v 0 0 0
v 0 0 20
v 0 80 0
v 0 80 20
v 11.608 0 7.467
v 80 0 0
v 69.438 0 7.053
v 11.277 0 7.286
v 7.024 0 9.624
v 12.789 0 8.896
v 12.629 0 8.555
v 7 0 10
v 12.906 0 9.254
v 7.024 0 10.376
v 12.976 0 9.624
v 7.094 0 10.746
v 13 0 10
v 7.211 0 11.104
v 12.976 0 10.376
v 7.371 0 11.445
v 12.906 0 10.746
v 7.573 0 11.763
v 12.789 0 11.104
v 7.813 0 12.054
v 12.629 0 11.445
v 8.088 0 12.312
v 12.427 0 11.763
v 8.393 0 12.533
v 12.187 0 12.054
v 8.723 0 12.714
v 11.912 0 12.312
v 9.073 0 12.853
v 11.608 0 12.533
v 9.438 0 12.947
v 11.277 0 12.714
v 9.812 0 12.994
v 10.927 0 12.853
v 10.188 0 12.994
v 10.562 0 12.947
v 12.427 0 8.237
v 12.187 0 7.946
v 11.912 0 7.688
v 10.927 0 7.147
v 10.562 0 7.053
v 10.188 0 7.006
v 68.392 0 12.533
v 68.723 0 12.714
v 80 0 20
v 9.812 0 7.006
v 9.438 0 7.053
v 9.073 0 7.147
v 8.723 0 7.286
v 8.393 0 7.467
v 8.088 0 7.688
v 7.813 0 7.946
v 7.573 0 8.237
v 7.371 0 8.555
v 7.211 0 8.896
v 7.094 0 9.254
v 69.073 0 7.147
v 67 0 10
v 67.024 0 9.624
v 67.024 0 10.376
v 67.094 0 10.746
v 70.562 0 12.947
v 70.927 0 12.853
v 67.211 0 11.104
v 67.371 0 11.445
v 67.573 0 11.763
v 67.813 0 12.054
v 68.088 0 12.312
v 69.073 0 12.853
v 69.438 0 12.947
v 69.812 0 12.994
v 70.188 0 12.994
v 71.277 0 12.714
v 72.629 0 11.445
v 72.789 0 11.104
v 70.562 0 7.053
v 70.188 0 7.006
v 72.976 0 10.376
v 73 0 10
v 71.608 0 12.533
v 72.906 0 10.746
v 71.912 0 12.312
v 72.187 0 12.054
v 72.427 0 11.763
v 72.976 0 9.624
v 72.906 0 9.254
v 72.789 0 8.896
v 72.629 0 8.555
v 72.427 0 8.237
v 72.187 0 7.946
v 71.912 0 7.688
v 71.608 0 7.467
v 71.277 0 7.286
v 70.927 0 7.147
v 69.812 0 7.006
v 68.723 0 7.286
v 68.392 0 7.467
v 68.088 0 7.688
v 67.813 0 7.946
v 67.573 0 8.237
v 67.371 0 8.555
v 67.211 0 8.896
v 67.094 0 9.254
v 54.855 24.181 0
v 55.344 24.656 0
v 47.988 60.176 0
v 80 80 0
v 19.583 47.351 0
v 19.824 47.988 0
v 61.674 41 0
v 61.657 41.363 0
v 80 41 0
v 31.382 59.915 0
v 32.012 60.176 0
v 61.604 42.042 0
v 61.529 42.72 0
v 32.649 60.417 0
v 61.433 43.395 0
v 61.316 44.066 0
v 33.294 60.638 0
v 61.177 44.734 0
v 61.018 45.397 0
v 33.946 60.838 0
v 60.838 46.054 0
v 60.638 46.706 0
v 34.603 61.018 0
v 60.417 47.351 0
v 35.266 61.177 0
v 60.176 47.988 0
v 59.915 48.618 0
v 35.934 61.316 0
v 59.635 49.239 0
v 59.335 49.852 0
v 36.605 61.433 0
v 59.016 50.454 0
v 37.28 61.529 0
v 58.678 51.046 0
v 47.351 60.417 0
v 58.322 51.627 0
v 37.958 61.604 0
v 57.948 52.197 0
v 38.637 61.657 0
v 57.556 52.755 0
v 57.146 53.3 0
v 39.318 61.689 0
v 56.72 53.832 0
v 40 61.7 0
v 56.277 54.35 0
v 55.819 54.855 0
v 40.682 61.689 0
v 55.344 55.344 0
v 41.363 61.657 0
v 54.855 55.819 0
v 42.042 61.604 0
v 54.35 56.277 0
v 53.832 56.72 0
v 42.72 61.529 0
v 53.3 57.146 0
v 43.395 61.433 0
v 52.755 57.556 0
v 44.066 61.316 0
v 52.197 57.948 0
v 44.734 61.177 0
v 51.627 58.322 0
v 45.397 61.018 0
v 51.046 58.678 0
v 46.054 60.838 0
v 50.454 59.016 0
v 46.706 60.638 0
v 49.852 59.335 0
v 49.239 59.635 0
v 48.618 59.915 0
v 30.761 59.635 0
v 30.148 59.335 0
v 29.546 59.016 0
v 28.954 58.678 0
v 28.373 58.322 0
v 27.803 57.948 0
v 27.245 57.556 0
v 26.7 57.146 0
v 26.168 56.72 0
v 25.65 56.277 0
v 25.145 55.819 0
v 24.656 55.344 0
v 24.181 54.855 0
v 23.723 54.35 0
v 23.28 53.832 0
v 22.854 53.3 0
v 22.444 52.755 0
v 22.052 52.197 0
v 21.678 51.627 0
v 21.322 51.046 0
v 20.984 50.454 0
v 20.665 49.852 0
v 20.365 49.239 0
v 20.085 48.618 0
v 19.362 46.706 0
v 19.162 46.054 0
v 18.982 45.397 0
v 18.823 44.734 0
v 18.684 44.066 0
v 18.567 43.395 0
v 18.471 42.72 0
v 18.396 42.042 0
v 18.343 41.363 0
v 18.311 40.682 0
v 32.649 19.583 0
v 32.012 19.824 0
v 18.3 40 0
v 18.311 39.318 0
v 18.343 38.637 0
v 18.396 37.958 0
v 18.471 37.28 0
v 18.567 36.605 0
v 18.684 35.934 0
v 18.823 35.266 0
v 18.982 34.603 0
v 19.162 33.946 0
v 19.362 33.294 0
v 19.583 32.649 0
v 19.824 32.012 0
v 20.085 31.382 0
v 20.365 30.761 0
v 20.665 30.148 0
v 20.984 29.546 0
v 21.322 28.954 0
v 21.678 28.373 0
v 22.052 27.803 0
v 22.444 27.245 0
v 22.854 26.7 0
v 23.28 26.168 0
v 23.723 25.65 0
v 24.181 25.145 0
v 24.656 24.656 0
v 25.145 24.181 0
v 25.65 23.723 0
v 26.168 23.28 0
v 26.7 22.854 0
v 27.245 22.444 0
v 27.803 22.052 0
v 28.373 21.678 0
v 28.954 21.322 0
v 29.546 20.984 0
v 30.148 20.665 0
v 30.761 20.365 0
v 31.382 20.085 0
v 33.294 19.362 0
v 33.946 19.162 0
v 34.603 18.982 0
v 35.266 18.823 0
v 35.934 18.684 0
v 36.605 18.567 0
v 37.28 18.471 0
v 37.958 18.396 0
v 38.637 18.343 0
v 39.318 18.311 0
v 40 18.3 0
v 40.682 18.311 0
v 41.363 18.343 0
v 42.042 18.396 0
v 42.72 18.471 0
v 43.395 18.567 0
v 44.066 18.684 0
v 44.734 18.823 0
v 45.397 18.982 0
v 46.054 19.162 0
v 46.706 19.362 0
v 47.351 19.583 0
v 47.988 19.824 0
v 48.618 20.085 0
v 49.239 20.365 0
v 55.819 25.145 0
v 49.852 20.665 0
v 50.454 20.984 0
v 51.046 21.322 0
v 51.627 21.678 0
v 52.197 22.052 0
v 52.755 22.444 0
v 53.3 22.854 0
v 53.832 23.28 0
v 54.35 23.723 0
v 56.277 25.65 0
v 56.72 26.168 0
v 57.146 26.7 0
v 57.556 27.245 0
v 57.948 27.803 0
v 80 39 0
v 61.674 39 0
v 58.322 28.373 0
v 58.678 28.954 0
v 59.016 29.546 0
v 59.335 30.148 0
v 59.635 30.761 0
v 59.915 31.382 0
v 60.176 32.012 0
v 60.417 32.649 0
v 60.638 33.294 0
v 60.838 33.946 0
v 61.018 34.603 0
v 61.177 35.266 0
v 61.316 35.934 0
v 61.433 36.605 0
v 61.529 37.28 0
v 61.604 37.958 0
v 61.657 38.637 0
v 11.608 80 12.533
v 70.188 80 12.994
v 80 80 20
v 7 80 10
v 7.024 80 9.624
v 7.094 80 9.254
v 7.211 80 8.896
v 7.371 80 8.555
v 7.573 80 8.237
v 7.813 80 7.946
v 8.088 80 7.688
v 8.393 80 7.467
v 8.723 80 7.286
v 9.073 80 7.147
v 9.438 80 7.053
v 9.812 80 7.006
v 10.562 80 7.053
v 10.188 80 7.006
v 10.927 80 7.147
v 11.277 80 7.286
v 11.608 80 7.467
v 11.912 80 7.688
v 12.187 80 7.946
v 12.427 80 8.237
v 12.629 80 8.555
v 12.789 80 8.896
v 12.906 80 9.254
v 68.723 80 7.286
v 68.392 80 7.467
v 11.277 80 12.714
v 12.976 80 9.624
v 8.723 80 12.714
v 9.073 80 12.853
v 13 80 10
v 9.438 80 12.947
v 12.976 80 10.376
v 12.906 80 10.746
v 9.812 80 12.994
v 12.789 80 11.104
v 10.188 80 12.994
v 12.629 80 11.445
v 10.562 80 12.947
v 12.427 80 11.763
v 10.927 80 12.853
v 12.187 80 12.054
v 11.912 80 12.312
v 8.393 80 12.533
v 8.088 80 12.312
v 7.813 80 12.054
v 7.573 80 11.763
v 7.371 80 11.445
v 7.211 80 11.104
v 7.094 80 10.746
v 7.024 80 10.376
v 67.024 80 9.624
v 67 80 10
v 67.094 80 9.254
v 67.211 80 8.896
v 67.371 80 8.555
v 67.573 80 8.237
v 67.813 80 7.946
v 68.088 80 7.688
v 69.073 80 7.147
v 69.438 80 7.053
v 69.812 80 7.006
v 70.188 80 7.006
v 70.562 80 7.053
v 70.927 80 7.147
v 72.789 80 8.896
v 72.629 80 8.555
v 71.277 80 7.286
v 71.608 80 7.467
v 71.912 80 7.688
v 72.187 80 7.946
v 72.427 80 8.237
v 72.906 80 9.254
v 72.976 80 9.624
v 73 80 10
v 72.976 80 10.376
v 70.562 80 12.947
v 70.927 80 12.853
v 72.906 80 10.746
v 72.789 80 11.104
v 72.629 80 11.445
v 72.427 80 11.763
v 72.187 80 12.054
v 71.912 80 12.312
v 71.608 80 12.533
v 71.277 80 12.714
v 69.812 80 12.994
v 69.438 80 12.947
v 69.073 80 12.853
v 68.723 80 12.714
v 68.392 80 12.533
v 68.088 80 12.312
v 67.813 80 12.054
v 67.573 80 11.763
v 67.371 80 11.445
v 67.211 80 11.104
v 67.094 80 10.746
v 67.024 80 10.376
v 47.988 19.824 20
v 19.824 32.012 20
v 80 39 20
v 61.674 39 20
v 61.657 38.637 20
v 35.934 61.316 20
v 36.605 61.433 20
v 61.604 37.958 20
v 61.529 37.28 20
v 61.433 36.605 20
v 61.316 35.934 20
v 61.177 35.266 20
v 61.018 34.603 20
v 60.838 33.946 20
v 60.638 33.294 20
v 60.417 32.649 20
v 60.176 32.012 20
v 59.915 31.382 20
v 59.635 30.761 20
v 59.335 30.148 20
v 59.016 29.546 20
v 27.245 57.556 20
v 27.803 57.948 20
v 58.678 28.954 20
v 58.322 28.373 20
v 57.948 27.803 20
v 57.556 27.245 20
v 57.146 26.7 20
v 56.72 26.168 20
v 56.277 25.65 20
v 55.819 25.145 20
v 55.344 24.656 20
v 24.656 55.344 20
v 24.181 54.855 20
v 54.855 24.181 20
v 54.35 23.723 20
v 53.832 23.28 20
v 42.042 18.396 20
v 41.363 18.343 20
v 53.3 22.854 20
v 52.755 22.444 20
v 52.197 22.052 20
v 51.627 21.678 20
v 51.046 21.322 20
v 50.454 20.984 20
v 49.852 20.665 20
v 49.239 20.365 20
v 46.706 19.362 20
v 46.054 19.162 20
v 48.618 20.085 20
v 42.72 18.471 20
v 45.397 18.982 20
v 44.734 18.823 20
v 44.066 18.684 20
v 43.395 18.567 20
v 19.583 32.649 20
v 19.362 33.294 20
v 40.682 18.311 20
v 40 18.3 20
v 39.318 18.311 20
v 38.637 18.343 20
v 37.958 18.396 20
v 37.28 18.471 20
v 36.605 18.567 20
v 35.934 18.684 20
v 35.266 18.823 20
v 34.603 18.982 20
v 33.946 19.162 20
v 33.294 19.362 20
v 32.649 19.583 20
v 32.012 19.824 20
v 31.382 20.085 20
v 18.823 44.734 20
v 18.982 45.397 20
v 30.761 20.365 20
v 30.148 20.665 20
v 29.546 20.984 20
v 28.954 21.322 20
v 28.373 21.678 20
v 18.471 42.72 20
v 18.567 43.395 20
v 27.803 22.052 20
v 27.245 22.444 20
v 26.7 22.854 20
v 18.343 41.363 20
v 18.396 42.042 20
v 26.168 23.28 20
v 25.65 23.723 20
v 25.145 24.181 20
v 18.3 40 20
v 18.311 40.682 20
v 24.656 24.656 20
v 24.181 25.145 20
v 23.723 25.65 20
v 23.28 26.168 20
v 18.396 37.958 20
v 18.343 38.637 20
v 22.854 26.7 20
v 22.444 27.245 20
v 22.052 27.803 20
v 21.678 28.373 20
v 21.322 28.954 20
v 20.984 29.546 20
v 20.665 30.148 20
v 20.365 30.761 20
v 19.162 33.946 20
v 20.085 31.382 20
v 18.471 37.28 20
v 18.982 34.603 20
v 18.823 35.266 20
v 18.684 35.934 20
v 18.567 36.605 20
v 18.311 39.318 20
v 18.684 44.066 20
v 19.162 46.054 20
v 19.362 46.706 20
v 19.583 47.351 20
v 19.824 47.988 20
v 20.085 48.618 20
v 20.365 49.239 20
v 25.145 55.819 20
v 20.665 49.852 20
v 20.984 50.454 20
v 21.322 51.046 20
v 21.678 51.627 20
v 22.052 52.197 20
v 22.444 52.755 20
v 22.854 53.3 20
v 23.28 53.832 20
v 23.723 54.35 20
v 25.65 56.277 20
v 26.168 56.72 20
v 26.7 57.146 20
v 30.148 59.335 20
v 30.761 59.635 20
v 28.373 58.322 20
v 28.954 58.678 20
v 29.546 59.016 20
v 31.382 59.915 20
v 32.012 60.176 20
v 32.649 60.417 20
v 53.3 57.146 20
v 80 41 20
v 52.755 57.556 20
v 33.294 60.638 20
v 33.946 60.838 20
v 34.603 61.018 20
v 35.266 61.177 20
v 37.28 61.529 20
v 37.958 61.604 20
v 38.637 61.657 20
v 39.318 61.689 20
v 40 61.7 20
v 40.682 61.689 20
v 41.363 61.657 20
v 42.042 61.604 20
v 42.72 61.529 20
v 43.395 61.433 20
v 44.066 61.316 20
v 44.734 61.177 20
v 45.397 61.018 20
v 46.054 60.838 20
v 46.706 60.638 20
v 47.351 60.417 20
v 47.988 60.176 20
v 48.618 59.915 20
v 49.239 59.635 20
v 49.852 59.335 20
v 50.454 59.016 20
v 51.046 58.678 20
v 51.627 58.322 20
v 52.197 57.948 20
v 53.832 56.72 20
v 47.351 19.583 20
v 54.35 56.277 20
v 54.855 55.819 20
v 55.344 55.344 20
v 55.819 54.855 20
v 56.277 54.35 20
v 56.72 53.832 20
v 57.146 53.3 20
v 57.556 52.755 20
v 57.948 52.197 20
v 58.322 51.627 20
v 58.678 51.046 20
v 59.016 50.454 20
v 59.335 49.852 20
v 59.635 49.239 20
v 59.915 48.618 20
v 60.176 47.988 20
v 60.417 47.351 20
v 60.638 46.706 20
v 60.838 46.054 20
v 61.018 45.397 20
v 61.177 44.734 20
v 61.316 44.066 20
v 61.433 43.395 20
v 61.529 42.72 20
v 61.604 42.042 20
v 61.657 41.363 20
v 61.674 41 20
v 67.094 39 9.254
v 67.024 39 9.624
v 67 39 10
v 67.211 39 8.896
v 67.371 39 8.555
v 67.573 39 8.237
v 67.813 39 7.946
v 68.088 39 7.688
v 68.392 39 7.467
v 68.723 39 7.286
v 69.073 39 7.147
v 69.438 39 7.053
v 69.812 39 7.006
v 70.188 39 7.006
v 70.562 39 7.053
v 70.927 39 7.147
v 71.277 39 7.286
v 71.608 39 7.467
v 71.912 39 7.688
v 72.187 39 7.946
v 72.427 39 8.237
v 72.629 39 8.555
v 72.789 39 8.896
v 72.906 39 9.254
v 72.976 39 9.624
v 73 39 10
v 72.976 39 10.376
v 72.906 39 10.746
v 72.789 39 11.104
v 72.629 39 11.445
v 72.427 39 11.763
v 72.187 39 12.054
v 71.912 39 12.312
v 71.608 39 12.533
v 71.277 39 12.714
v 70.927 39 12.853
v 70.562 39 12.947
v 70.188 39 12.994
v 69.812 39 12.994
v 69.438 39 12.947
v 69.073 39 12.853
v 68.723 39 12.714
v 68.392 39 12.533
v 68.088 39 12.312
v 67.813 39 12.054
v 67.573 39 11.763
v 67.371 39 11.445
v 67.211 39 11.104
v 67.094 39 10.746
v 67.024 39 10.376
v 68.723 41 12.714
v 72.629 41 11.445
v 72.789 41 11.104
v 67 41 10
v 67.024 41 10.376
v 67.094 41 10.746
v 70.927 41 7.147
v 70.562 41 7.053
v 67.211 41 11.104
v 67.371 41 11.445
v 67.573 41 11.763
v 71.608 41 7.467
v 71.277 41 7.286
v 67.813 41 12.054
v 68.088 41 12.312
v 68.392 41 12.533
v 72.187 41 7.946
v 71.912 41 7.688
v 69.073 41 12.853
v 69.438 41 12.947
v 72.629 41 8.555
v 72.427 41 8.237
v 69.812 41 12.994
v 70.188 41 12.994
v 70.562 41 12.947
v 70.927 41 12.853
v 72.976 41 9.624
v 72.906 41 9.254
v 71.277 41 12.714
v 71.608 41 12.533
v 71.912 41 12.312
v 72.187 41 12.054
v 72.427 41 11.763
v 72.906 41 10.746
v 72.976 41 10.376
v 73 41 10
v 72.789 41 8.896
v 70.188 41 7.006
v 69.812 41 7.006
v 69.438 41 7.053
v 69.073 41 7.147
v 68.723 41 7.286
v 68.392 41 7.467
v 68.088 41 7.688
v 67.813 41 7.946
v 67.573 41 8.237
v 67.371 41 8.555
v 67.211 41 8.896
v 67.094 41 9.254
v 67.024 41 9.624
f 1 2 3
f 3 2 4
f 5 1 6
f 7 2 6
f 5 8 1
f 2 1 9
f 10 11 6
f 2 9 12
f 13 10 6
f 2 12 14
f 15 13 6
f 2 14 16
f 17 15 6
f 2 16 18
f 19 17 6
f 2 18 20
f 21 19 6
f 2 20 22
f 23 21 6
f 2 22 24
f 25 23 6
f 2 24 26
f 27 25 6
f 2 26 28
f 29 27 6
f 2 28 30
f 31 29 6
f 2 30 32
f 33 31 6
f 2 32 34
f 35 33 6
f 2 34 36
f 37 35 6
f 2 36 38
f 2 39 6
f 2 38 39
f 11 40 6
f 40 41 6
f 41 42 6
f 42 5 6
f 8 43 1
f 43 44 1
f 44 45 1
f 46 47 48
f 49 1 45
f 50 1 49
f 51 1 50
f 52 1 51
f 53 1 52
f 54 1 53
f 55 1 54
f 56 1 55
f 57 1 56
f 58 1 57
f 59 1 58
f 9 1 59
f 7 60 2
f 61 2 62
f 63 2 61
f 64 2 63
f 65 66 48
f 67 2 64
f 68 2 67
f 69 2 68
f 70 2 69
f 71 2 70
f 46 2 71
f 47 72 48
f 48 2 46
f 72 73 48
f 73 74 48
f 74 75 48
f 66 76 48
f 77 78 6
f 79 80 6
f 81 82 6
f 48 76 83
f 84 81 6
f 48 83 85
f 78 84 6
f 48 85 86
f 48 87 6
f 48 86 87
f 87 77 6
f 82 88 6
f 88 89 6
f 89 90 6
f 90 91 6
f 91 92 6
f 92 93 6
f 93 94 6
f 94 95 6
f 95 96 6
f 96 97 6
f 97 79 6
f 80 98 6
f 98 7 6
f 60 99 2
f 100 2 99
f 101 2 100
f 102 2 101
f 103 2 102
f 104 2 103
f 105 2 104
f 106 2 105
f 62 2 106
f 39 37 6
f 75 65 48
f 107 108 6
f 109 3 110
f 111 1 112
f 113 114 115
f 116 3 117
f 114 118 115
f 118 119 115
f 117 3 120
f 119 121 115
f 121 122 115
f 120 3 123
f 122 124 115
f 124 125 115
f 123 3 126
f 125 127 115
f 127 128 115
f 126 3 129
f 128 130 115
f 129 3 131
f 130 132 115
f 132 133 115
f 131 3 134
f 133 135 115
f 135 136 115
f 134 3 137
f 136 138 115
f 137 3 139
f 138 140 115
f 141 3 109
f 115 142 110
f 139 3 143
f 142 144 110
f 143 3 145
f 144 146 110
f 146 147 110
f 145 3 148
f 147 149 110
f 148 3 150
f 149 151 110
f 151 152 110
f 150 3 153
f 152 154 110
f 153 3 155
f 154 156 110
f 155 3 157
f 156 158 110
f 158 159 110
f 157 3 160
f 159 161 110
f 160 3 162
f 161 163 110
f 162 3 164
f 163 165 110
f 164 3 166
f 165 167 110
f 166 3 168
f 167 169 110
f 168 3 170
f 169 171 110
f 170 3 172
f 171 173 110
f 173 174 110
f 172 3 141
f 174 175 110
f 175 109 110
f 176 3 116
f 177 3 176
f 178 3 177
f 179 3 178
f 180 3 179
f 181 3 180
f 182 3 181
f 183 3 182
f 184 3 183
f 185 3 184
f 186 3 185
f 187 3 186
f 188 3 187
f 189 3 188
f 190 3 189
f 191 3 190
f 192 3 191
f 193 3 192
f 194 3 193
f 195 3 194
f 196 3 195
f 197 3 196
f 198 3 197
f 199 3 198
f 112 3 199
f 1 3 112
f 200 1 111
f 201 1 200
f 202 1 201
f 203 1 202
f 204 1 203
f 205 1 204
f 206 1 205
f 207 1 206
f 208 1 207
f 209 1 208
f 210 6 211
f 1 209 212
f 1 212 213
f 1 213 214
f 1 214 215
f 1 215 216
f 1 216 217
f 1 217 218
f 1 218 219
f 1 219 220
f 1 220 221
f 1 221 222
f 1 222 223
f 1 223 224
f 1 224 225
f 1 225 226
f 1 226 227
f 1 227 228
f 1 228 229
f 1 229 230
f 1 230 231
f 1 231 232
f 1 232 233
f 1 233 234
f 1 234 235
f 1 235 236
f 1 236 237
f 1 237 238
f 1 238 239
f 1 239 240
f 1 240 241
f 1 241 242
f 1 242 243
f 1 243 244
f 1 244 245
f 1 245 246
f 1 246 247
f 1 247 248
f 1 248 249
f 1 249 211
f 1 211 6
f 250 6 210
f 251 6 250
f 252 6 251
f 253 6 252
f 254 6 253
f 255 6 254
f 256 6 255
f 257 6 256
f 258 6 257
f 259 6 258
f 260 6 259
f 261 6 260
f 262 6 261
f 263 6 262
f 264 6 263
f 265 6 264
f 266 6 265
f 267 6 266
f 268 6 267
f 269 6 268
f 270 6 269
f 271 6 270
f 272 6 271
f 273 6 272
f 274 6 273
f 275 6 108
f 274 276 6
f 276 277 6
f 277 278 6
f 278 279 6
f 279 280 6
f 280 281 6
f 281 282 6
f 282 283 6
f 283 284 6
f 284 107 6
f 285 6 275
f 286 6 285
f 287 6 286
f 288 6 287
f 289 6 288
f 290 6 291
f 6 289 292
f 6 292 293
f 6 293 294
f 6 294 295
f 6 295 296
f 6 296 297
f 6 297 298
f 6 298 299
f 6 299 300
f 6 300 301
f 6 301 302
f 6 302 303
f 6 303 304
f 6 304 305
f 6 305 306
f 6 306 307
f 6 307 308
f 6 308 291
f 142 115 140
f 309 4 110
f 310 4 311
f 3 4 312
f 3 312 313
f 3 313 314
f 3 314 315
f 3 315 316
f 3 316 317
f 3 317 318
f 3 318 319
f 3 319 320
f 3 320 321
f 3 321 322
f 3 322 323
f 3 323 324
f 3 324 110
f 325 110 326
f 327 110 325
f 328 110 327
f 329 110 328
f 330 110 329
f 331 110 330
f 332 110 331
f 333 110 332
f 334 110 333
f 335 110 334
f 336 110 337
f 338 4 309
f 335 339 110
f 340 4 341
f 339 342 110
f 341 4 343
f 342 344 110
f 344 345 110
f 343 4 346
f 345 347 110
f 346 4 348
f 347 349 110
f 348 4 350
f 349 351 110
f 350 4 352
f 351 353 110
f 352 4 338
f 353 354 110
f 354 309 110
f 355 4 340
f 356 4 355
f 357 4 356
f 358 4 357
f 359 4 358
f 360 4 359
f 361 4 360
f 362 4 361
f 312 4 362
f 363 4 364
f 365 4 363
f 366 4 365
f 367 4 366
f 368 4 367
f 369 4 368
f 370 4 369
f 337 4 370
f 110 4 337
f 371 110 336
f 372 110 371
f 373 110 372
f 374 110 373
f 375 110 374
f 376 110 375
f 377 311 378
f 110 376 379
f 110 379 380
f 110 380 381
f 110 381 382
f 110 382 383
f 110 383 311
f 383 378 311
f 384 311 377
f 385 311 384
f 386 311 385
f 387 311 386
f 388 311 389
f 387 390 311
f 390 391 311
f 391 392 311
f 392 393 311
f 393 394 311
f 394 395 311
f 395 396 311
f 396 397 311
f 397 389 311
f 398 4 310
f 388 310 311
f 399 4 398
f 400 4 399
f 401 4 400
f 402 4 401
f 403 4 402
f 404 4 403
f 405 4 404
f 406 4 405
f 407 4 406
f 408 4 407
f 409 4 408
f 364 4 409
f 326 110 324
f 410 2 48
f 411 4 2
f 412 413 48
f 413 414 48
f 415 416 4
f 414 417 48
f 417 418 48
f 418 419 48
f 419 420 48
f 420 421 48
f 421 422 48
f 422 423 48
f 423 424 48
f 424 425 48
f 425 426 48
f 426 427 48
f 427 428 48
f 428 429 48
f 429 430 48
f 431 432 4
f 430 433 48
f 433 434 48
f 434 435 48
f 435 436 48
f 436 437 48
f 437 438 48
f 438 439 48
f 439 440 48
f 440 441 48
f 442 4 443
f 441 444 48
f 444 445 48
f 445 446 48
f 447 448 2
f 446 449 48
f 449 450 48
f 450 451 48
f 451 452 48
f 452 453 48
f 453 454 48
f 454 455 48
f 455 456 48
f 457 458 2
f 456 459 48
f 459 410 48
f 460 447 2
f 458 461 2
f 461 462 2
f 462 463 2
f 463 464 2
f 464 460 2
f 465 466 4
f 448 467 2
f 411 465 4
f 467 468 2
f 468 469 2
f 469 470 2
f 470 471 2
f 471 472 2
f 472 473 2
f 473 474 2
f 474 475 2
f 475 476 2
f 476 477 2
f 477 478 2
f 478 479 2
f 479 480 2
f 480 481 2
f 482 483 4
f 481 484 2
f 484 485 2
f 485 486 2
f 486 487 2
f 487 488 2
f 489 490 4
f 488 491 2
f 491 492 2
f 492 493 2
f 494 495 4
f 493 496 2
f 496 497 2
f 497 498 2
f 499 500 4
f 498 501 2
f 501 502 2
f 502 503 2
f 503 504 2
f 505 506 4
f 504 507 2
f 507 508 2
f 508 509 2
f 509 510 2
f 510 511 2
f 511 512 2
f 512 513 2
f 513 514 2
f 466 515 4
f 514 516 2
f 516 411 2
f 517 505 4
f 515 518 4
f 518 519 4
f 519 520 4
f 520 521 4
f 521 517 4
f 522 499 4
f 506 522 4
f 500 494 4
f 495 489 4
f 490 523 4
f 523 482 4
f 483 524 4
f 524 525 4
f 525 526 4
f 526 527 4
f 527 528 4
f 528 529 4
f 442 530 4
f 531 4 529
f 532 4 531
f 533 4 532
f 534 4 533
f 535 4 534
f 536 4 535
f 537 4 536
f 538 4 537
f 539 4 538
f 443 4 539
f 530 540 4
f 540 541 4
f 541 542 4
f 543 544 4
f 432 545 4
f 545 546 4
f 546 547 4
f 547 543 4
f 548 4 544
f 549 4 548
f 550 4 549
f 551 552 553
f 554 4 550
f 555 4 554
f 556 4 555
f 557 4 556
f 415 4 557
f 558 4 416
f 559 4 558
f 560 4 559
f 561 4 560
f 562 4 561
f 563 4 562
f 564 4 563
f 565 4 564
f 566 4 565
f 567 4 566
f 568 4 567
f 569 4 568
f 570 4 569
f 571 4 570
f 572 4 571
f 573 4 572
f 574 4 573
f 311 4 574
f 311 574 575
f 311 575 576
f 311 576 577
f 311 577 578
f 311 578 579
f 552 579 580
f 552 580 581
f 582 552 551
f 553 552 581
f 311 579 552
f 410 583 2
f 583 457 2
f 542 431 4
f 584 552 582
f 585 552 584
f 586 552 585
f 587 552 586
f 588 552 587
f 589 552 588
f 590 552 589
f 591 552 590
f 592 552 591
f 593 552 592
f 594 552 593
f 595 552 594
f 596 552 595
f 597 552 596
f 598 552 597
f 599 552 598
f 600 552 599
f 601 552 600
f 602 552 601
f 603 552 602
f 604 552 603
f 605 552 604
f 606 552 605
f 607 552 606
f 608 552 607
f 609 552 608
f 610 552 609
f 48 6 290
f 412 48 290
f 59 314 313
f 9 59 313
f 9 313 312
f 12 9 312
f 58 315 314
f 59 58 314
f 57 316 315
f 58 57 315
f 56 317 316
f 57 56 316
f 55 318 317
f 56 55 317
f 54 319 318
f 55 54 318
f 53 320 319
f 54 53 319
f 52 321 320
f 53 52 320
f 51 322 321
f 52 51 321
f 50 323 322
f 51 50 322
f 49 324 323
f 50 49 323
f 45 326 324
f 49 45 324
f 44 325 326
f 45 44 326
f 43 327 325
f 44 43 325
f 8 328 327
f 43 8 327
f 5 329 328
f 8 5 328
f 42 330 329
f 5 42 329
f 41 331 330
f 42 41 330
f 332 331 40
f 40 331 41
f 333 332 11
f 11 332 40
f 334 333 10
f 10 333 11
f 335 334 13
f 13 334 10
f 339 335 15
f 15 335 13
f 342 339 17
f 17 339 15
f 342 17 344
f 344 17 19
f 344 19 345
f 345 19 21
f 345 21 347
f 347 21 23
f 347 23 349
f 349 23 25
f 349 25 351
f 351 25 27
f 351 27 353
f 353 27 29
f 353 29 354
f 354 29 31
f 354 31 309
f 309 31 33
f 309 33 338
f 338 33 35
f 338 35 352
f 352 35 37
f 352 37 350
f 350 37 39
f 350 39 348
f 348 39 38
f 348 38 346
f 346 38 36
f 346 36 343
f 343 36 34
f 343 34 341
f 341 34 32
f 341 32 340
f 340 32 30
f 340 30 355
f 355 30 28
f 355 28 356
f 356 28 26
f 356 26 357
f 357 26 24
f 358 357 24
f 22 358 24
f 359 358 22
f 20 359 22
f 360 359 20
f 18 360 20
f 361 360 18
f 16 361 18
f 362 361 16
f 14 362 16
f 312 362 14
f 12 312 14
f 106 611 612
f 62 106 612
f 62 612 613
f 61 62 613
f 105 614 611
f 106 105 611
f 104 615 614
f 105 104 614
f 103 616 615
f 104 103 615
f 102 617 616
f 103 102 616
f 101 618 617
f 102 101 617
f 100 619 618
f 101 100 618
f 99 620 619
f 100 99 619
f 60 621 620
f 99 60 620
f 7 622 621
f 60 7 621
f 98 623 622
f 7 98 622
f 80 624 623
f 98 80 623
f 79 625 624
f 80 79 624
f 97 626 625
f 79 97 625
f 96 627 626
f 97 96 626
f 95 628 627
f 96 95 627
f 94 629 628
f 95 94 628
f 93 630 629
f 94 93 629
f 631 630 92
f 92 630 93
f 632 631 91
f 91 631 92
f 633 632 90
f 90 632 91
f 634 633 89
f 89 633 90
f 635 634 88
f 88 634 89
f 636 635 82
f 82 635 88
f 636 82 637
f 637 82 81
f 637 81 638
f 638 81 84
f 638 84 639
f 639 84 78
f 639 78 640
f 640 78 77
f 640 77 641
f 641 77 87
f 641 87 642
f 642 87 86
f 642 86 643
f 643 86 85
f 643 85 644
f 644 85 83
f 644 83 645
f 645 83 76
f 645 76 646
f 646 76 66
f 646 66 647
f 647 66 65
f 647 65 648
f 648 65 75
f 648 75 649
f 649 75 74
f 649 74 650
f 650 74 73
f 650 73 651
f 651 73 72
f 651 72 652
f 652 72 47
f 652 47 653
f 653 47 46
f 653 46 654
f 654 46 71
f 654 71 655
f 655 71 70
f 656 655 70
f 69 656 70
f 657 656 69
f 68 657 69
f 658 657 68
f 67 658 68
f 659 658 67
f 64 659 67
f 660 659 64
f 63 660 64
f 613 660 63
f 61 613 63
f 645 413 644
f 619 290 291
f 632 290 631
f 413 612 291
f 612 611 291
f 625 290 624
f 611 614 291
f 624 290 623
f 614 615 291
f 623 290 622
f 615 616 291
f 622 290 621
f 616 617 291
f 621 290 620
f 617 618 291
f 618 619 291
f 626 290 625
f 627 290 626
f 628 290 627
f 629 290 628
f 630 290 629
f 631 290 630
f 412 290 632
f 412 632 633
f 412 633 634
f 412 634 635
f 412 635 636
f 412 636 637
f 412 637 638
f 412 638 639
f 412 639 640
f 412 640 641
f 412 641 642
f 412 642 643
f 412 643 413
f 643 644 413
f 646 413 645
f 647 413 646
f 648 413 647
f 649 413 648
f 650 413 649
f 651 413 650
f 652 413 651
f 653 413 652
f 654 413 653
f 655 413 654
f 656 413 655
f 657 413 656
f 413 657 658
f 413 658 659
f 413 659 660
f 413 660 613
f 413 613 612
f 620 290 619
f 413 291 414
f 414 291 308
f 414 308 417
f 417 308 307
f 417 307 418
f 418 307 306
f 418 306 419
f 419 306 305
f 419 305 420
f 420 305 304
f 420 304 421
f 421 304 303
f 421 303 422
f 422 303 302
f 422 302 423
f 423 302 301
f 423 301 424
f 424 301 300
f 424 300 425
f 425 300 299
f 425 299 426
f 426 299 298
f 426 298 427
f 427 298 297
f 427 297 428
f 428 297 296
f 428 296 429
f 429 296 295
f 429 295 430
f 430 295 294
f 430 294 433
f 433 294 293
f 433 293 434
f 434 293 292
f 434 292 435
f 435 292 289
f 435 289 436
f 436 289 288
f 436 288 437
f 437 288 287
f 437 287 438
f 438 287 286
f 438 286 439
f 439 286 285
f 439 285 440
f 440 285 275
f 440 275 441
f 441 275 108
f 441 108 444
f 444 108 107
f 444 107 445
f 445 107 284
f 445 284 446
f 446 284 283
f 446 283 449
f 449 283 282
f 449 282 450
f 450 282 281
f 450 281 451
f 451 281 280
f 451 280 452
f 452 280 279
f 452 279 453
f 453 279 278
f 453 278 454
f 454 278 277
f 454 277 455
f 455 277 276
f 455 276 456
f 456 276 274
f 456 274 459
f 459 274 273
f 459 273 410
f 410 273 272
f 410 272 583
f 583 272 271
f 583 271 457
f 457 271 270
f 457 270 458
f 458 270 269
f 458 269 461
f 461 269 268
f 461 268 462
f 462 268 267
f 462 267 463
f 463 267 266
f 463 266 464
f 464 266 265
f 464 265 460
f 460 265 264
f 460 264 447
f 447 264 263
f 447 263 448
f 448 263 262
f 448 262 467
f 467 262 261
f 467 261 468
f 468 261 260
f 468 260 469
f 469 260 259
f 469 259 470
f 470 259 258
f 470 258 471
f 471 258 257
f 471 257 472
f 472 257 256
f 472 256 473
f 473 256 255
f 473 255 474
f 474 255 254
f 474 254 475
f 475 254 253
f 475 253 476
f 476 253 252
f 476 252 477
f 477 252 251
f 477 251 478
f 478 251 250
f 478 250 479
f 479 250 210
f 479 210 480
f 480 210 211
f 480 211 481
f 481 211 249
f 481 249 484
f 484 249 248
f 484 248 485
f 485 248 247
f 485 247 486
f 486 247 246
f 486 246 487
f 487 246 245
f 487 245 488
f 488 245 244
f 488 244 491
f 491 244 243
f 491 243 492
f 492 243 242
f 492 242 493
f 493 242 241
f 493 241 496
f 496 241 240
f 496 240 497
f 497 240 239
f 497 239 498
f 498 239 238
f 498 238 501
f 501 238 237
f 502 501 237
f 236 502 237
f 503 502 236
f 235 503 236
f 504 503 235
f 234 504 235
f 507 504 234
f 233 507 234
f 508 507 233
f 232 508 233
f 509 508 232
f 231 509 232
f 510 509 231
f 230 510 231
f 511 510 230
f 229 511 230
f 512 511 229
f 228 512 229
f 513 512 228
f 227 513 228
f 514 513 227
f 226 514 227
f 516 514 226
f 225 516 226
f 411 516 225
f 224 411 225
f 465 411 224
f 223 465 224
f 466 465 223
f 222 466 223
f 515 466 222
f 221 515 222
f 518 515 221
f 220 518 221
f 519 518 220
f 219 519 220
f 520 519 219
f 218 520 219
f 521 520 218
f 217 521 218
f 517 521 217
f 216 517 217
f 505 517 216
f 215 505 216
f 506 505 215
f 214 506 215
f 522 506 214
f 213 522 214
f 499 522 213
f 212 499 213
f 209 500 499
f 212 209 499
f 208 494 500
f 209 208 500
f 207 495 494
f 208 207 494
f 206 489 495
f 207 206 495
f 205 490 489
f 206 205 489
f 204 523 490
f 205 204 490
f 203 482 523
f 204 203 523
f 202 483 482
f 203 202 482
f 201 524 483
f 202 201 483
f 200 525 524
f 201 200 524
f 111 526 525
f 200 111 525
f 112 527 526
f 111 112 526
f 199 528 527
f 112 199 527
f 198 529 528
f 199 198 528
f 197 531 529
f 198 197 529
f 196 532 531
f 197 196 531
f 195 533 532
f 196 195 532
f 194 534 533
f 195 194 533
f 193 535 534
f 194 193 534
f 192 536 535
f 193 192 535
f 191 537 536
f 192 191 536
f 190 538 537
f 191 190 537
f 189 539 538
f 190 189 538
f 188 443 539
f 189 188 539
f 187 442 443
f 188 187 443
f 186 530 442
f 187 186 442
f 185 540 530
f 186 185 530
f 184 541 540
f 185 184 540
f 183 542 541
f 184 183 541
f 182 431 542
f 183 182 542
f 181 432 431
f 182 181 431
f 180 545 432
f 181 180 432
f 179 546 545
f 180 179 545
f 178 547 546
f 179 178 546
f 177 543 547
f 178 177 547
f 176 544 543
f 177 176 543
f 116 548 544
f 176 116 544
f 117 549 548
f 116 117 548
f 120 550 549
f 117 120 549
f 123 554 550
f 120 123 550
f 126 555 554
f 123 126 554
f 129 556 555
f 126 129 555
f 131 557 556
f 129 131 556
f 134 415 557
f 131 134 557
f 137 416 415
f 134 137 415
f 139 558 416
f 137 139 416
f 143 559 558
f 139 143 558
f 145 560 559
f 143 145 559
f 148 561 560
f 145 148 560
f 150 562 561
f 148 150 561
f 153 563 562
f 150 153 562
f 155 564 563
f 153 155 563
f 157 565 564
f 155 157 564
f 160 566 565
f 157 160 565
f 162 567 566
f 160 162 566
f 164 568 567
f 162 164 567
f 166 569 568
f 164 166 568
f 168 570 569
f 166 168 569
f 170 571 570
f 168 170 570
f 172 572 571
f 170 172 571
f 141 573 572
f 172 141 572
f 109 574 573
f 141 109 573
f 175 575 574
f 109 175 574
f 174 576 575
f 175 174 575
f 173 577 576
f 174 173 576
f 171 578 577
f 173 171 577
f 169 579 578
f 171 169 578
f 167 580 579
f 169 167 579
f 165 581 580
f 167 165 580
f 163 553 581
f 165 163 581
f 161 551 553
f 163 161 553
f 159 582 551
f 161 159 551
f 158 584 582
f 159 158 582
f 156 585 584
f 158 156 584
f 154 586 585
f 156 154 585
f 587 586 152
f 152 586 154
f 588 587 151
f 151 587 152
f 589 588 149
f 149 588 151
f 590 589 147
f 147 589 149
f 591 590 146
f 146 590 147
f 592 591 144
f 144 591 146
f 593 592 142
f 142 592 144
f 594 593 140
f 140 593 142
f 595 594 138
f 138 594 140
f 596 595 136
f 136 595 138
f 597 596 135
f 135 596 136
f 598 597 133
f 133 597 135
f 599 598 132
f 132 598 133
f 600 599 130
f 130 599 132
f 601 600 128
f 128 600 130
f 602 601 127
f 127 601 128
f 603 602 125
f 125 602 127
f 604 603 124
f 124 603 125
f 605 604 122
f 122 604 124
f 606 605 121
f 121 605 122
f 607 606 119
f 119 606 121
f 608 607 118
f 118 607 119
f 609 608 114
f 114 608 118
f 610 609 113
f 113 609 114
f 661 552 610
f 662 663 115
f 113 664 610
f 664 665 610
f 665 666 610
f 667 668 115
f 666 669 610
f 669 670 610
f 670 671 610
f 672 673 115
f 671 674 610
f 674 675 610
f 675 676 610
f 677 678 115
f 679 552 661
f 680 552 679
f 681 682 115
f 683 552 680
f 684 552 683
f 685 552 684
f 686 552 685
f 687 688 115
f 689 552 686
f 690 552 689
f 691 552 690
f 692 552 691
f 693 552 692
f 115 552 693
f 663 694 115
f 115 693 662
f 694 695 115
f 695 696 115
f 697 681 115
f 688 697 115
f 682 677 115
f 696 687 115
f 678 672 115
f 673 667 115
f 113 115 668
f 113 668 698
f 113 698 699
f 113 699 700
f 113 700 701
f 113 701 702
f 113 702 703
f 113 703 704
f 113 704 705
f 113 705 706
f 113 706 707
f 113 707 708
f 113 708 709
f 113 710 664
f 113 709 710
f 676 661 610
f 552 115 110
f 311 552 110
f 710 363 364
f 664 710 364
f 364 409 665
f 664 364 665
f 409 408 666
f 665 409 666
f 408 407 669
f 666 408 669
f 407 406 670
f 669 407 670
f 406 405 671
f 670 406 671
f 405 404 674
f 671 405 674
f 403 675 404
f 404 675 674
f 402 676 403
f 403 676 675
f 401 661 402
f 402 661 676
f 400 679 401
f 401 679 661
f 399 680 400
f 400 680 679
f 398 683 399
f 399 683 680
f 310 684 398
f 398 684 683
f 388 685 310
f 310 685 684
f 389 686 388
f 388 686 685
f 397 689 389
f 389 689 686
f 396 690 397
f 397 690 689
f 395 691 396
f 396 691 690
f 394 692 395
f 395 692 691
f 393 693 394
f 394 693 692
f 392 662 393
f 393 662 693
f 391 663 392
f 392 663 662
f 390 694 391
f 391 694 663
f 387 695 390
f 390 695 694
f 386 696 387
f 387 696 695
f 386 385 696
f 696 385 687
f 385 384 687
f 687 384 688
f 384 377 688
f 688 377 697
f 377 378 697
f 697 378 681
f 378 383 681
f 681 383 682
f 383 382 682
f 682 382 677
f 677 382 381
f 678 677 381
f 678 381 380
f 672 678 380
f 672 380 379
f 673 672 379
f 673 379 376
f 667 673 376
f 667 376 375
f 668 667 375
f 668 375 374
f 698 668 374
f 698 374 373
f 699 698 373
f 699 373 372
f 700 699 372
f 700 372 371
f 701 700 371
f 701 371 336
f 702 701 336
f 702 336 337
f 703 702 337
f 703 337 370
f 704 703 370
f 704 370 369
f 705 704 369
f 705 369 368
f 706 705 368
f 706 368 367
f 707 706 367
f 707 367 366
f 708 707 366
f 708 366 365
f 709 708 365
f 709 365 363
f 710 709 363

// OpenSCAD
r_trou=3;
r_kress=21.5;
entraxe_fix_l=60;
entraxe_fix_h=20;
hauteur=20;
largeur=80;
prof=80;


module kress_43mm(){
	difference(){
		cube([largeur, prof, hauteur]);

		//trou central pour collerette
		translate([largeur/2,40,-5]){cylinder(h = hauteur+10, r = r_kress+0.2, $fn=200);}

		//trou pour vis de serrage écrou M8 dans pièce
		//translate([largeur/2,0,-5]){cylinder(h = hauteur+10, r = 4, $fn=50);}

		//fente pour serrage collerette
		translate([largeur/2,40-1,-5]){cube([largeur, 2, hauteur+10]);}

		//trous de fixation
		translate([10,-5,hauteur/2]){rotate([-90,0,0])cylinder(r=r_trou, h=prof+20, $fn=50);}
		translate([largeur-10,-5,hauteur/2]){rotate([-90,0,0])cylinder(r=r_trou, h=prof+20, $fn=50);}
			}
}

kress_43mm();
